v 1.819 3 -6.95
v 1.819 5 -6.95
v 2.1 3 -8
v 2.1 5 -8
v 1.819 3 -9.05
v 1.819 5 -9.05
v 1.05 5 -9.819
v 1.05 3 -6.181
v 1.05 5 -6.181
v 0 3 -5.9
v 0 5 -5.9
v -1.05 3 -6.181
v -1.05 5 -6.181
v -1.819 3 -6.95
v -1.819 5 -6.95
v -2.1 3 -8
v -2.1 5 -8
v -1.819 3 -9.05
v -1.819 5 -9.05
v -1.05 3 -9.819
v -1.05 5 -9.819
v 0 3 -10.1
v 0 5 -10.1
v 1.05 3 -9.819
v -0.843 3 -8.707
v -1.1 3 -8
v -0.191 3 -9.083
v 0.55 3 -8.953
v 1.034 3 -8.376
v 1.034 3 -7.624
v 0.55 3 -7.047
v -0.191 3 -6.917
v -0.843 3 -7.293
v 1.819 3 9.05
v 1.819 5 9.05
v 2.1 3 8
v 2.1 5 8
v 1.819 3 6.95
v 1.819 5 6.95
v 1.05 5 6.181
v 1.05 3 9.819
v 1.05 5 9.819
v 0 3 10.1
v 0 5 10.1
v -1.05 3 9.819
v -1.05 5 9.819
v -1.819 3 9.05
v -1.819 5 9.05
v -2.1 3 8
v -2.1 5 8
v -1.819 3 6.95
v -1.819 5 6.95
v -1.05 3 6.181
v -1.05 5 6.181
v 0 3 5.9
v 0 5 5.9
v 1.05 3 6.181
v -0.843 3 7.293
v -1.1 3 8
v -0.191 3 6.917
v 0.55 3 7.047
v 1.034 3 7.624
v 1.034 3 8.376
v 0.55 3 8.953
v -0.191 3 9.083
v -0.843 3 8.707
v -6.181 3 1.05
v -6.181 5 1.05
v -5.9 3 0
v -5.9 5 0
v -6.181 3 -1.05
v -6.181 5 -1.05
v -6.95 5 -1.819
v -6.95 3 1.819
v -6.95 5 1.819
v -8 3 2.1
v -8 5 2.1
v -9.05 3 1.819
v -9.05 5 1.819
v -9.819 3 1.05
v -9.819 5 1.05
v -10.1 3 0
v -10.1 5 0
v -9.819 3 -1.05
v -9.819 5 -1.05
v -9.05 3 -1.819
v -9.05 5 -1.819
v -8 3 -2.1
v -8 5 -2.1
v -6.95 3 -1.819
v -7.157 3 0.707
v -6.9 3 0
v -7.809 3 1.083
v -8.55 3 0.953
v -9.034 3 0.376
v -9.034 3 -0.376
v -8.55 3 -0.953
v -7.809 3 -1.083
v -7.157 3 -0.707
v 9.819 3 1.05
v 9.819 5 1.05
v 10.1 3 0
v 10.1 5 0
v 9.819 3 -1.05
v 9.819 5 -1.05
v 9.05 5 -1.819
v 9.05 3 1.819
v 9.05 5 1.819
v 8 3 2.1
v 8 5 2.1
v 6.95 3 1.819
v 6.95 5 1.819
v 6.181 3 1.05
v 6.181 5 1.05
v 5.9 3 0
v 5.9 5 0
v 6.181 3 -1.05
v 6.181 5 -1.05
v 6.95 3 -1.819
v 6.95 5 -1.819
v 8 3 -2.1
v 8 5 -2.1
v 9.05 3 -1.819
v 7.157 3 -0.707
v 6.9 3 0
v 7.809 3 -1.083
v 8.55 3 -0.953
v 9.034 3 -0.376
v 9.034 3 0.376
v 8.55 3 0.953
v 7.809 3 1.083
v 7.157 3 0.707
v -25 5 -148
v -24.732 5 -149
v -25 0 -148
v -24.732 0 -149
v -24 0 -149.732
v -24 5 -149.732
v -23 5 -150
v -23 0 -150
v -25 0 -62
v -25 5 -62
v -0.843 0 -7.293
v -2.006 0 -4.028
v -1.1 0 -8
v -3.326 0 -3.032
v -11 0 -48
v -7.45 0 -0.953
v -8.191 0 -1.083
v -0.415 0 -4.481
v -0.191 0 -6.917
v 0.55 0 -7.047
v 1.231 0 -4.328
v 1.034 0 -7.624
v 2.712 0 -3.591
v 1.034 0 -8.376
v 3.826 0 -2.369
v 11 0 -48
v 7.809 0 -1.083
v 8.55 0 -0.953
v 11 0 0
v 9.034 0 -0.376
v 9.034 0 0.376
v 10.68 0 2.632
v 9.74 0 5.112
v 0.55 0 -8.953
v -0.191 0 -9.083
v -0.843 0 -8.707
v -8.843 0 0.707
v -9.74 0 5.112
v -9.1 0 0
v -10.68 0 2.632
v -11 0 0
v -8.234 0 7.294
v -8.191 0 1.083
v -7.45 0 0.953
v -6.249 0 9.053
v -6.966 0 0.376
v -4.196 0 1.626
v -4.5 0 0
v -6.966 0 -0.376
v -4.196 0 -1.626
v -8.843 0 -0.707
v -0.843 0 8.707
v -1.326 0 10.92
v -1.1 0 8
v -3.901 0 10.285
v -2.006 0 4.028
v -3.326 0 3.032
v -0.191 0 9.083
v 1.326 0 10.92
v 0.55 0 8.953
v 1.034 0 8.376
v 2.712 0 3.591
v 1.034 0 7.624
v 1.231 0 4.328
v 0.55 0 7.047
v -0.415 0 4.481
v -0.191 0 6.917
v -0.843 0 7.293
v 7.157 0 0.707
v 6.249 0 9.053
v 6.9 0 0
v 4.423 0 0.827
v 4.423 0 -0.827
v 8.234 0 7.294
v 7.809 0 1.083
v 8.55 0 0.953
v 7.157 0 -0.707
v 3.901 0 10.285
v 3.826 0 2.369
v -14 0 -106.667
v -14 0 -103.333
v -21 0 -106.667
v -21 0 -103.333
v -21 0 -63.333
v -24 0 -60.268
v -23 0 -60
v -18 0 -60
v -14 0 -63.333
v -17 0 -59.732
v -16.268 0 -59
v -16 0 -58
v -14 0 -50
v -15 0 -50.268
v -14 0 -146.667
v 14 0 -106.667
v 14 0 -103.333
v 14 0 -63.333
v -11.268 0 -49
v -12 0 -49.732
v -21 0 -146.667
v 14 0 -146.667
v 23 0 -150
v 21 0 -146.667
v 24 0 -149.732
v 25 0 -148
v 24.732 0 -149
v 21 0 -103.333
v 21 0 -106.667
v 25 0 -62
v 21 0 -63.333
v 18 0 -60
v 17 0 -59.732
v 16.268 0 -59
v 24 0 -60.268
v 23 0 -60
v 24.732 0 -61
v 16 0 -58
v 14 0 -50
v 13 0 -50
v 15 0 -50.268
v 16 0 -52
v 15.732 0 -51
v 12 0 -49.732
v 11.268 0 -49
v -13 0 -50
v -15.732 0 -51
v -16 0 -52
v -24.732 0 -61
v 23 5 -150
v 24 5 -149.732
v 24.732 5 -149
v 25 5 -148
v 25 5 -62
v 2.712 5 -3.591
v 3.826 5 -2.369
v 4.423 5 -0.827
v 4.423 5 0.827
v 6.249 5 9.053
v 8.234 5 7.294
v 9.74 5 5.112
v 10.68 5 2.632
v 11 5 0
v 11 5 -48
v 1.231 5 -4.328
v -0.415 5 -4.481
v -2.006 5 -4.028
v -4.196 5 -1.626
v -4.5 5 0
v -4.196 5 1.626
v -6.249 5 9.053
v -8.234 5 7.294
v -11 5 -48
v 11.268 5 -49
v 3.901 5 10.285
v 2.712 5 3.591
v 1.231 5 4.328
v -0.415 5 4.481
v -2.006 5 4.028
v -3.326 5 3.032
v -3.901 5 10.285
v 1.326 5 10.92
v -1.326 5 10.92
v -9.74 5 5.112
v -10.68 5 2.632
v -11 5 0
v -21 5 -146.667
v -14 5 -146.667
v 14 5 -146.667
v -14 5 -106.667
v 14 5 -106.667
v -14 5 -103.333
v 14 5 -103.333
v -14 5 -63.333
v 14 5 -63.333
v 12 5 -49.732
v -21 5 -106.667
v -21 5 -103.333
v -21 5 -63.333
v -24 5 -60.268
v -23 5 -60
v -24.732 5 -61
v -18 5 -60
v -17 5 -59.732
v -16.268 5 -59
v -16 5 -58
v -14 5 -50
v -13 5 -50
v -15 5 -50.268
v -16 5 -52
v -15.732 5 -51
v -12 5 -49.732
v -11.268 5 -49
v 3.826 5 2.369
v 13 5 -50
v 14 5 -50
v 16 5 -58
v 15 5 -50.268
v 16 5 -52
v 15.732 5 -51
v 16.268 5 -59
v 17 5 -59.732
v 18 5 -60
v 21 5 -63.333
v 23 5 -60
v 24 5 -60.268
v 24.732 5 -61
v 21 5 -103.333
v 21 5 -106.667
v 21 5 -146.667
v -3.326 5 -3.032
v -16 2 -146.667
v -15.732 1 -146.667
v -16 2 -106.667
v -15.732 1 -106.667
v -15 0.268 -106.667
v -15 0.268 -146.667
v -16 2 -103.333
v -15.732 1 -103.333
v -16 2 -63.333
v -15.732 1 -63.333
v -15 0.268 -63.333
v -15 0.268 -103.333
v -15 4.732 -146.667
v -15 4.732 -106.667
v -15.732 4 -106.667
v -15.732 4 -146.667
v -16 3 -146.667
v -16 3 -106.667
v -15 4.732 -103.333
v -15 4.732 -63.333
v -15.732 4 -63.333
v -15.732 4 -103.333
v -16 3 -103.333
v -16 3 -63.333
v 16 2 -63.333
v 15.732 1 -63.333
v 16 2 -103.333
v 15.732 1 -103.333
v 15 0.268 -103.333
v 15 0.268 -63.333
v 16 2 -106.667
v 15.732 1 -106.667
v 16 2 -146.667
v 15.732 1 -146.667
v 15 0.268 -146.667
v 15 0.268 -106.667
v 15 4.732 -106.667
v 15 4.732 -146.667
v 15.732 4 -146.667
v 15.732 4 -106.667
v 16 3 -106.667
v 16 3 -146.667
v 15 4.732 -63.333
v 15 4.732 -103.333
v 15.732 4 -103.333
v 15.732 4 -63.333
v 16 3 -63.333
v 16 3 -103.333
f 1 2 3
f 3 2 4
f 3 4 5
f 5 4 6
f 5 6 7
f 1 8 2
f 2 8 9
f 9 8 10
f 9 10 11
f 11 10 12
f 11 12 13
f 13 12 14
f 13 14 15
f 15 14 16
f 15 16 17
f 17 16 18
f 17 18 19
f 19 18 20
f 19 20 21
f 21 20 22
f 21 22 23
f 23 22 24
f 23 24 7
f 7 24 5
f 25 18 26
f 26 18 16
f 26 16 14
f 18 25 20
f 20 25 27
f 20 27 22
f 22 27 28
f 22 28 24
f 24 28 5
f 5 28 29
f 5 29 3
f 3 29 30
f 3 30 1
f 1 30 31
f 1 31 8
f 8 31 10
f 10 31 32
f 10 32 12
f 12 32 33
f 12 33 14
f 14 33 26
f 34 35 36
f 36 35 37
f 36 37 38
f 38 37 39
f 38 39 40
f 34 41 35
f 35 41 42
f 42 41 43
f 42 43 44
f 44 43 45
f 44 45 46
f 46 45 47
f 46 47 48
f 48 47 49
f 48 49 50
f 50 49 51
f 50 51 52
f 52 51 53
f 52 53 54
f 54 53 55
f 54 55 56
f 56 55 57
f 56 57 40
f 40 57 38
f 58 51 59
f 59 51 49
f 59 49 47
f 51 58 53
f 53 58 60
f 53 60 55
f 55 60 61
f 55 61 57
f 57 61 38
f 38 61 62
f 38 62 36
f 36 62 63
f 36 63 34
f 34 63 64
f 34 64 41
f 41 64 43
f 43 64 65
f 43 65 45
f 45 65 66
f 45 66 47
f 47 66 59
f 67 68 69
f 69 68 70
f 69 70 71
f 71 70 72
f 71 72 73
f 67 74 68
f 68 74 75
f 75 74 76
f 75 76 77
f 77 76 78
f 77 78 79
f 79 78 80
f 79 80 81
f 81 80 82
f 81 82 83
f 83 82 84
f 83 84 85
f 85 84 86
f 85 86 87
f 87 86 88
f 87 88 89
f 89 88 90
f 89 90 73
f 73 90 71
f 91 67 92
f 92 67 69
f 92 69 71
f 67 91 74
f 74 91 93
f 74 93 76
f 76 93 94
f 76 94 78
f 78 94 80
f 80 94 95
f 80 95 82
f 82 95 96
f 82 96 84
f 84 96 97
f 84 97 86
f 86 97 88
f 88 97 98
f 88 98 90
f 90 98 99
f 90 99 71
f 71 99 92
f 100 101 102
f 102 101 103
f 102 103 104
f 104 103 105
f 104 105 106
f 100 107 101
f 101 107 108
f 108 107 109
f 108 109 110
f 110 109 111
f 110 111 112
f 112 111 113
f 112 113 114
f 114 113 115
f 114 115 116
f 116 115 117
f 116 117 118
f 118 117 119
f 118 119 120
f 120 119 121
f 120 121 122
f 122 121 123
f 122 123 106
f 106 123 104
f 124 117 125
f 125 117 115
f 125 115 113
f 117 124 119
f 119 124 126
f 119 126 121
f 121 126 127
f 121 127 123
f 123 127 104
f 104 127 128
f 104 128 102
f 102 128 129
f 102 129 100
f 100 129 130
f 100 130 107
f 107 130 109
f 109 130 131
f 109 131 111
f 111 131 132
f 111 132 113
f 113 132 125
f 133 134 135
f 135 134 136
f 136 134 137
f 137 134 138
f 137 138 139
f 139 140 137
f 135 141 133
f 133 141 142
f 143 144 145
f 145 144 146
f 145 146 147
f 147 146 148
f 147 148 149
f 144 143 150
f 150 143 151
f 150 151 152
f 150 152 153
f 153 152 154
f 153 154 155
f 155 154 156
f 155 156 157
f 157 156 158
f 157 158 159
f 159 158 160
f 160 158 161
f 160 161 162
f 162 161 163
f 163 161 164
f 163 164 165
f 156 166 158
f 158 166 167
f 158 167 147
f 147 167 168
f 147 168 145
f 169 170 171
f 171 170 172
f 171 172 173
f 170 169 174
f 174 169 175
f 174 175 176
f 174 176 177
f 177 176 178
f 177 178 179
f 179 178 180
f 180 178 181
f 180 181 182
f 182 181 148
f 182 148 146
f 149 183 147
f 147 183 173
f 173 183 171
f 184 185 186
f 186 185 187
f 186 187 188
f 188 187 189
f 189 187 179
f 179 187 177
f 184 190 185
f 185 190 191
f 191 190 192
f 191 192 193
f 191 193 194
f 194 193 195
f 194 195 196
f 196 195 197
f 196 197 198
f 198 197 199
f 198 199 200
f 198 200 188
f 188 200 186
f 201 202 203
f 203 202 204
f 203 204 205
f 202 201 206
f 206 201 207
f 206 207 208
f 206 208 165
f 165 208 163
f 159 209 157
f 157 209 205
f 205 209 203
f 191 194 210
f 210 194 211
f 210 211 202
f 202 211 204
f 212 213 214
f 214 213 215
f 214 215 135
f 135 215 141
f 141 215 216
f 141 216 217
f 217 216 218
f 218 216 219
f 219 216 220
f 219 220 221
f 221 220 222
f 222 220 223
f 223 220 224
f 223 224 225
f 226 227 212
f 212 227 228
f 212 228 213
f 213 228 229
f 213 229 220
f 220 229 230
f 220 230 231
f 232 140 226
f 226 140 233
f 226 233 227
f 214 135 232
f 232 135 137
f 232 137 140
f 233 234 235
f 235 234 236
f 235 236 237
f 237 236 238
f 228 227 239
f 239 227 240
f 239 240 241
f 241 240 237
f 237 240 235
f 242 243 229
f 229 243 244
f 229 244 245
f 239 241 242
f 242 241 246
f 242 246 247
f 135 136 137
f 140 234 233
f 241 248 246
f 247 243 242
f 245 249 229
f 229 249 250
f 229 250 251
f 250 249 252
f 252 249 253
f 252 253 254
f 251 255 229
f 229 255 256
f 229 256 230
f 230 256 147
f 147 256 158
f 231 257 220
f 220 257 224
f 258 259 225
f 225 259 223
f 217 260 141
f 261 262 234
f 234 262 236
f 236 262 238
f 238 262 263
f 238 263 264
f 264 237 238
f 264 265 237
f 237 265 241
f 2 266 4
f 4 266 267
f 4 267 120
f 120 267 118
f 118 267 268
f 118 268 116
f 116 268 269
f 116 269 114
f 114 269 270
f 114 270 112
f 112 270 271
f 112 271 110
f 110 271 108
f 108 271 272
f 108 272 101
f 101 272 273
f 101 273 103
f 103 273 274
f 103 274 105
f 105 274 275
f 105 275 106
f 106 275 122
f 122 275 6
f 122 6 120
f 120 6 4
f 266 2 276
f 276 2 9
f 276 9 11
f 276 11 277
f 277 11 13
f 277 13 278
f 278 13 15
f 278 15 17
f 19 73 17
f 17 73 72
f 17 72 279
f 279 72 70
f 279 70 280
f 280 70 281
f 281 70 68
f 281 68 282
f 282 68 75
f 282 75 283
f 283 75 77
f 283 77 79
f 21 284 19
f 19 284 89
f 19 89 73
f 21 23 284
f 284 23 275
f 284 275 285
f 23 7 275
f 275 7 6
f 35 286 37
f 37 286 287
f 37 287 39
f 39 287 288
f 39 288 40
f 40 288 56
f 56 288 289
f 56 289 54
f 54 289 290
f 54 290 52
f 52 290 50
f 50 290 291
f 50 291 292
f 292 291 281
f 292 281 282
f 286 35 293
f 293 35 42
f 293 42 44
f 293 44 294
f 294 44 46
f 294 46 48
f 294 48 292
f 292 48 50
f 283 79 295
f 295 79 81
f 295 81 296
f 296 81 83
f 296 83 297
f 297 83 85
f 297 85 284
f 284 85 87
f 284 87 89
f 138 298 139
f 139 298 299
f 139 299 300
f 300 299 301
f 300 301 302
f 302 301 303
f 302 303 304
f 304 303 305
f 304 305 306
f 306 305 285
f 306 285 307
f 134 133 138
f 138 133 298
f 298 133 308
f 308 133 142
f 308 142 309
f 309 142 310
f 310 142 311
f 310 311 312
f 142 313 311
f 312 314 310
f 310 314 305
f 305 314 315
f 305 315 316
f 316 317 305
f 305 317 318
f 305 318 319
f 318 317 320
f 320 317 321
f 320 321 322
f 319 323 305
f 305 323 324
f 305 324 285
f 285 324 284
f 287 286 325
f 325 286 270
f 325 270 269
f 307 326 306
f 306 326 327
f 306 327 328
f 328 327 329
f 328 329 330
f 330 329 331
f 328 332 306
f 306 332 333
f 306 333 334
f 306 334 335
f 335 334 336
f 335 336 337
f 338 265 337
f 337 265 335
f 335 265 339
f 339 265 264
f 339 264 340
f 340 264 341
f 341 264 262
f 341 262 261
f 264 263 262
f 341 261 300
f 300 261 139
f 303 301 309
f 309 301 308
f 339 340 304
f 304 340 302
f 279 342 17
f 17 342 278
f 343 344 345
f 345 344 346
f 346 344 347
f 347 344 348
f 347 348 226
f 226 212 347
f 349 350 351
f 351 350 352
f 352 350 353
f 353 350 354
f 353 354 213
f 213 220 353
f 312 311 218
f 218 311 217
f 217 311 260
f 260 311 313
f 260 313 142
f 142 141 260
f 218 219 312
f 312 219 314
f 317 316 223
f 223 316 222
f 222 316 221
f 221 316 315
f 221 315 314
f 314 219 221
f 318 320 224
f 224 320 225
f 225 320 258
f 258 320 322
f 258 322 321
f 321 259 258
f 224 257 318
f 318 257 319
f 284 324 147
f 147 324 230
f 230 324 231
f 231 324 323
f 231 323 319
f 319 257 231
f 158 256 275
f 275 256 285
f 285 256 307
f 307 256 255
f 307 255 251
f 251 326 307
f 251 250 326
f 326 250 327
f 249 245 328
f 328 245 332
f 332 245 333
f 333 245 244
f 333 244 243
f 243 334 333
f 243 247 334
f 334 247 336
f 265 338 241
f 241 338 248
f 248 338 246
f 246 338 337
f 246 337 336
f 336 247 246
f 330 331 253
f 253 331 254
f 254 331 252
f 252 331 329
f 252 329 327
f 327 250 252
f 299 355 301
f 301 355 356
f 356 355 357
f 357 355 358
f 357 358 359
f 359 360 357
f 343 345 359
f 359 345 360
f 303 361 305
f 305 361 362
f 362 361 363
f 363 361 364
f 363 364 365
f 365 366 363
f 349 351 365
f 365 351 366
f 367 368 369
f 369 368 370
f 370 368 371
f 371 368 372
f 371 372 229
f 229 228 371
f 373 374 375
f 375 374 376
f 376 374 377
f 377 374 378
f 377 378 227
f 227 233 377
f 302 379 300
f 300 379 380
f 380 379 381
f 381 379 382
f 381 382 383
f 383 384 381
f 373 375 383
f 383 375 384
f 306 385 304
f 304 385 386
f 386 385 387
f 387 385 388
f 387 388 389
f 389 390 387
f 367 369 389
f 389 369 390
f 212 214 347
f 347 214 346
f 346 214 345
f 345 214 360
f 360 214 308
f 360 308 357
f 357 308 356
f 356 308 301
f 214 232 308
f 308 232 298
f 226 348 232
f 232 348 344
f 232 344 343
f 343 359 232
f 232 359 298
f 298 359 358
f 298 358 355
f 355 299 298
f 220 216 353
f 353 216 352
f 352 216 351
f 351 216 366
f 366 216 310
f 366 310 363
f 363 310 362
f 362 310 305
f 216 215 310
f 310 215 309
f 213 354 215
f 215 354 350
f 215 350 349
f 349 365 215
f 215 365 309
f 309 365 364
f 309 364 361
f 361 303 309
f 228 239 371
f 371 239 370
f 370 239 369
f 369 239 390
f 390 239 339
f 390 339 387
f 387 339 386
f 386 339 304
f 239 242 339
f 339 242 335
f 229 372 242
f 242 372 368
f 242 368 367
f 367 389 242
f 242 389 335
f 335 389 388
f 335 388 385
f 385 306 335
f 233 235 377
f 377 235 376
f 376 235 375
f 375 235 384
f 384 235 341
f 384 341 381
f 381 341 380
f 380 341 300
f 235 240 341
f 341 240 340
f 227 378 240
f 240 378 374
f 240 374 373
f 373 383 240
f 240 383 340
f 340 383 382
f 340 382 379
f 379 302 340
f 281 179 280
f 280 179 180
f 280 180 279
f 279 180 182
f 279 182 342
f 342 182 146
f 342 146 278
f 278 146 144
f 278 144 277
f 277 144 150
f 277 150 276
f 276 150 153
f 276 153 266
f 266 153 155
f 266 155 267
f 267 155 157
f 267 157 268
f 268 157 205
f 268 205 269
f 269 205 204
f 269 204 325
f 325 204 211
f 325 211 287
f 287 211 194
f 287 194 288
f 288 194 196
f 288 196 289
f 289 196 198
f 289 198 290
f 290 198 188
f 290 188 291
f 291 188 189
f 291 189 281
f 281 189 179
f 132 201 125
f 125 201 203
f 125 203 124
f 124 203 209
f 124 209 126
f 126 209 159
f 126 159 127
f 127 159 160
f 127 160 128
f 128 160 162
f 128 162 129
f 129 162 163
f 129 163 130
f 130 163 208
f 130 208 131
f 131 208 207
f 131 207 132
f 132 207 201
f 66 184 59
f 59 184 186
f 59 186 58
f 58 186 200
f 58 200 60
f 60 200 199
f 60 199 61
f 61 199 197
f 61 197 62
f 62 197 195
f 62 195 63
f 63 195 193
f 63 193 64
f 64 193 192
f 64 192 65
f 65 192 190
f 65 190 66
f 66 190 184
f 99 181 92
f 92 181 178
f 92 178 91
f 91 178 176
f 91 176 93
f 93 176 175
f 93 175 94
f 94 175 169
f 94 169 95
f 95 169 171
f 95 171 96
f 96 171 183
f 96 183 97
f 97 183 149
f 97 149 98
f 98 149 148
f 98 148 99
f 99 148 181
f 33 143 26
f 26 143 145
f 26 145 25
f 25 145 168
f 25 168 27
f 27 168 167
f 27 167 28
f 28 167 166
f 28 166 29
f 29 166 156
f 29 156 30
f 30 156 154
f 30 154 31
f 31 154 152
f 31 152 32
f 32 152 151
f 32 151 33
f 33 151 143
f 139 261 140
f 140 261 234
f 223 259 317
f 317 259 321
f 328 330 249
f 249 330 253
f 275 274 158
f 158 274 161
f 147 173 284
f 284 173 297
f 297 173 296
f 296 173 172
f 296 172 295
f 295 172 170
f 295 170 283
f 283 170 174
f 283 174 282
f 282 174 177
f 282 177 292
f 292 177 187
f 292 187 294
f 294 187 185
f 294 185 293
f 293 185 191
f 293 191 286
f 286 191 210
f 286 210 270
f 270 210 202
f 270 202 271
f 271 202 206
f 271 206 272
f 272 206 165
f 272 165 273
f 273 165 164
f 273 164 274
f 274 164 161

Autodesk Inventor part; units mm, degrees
ref_plane "YZ Plane" through (0, 0, 0) normal (1, 0, 0) x (0, 1, 0)
ref_plane "XZ Plane" through (0, 0, 0) normal (0, 1, 0) x (-1, 0, 0)
ref_plane "XY Plane" through (0, 0, 0) normal (0, 0, 1) x (1, 0, 0)
sketch "스케치1" plane through (0, 0, 0) normal (0, 1, 0) x (-1, 0, 0)
  circle A0 centre (0, 0) radius 11
  circle A1 centre (0, -8) radius 1.1
  circle A2 centre (0, 0) radius 11
  circle A3 centre (8, 0) radius 1.1
  circle A4 centre (0, 0) radius 11
  circle A5 centre (0, 8) radius 1.1
  circle A6 centre (0, 0) radius 11
  circle A7 centre (-8, 0) radius 1.1
  line L0 (-11, 0) -> (-11, -150)
  line L1 (-11, -150) -> (11, -150)
  line L2 (11, -150) -> (11, 0)
  line L3 (16, -150) -> (-16, -150)
  line L4 (-16, -150) -> (-16, -50)
  line L5 (-16, -50) -> (16, -50)
  line L6 (16, -50) -> (16, -150)
  arc A8 (-11, 0) -> (11, 0) centre (0, 0) ccw
  circle A9 centre (0, 0) radius 4.5
  line L7 (25, -150) -> (-25, -150)
  line L8 (-25, -150) -> (-25, -60)
  line L9 (-25, -60) -> (25, -60)
  line L10 (25, -60) -> (25, -150)
  line L11 (16, -63.3333) -> (21, -63.3333)
  line L12 (21, -63.3333) -> (21, -103.3333)
  line L13 (21, -103.3333) -> (16, -103.3333)
  line L14 (16, -103.3333) -> (16, -63.3333)
  line L15 (16, -106.6667) -> (21, -106.6667)
  line L16 (21, -106.6667) -> (21, -146.6667)
  line L17 (21, -146.6667) -> (16, -146.6667)
  line L18 (16, -146.6667) -> (16, -106.6667)
  line L19 (-16, -63.3333) -> (-21, -63.3333)
  line L20 (-21, -63.3333) -> (-21, -103.3333)
  line L21 (-21, -103.3333) -> (-16, -103.3333)
  line L22 (-16, -103.3333) -> (-16, -63.3333)
  line L23 (-16, -106.6667) -> (-21, -106.6667)
  line L24 (-21, -106.6667) -> (-21, -146.6667)
  line L25 (-21, -146.6667) -> (-16, -146.6667)
  line L26 (-16, -146.6667) -> (-16, -106.6667)
  dimension "d1" = 2.2
  dimension "d5" = 360
  dimension "d7" = 150
  dimension "d8" = 32
  dimension "d9" = 100
  dimension "d24" = 9
  dimension "d26" = 50
  dimension "d27" = 90
  dimension "d28" = 9
  dimension "d29" = 5
  dimension "d30" = 40
  dimension "d31" = 5
  dimension "d32" = 40
  dimension "d33" = 3.3333
  dimension "d34" = 3.3333
  dimension "d35" = 5
  dimension "d36" = 40
  dimension "d37" = 5
  dimension "d38" = 40
  dimension "d39" = 3.3333
  dimension "d40" = 3.3333
extrude "돌출1" add sketch "스케치1" along normal blind 5 contours A0 | L2 L5 L0 A0 | L5 L6 L9 L2 | L2 L9 L0 L5 | L0 L9 L4 L5 | L9 L6 L3 L2 | L2 L1 L0 L9 | L0 L3 L4 L9 | L9 L10 L7 L6 L17 L16 L15 L13 L12 L11 | L4 L19 L20 L21 L23 L24 L25 L7 L8 L9
fillet "모깎기1" radius 2 18 edges at (16, 5, -83.3333) (16, 5, -126.6667) (16, 0, -126.6667) (16, 0, -83.3333) (-16, 5, -83.3333) (-16, 5, -126.6667) (16, 2.5, -50) (25, 2.5, -60) (16, 2.5, -60) (11, 2.5, -50) (-11, 2.5, -50) (-16, 2.5, -50) (-16, 2.5, -60) (-25, 2.5, -60) (-16, 0, -83.3333) (-16, 0, -126.6667) (25, 2.5, -150) (-25, 2.5, -150)
sketch "스케치2" plane through (0, 5, 0) normal (0, 1, 0) x (1, 0, 0)
  circle A0 centre (-8, 0) radius 1.1 projected
  circle A1 centre (-8, 0) radius 2.1
  circle A2 centre (0, -8) radius 2.1
  circle A3 centre (8, 0) radius 2.1
  circle A4 centre (0, 8) radius 2.1
  point P0 (0, 0)
  dimension "d42" = 4.2
  dimension "d45" = 360
extrude "돌출2" cut sketch "스케치2" against normal blind 2
equation "\"d28\" = -0.5 * d8 + 0.5 * d26"
equation "\"d31\" = d29"
equation "\"d32\" = d30"
equation "\"d33\" = -0.333333 * d30 + 0.333333 * d27 - 0.333333 * d32"
equation "\"d34\" = -0.333333 * d30 + 0.333333 * d27 - 0.333333 * d32"
equation "\"d35\" = d29"
equation "\"d36\" = d30"
equation "\"d37\" = d29"
equation "\"d38\" = d30"
equation "\"d39\" = -0.333333 * d30 + 0.333333 * d27 - 0.333333 * d32"
equation "\"d40\" = -0.333333 * d30 + 0.333333 * d27 - 0.333333 * d32"
properties part number "arm2"
